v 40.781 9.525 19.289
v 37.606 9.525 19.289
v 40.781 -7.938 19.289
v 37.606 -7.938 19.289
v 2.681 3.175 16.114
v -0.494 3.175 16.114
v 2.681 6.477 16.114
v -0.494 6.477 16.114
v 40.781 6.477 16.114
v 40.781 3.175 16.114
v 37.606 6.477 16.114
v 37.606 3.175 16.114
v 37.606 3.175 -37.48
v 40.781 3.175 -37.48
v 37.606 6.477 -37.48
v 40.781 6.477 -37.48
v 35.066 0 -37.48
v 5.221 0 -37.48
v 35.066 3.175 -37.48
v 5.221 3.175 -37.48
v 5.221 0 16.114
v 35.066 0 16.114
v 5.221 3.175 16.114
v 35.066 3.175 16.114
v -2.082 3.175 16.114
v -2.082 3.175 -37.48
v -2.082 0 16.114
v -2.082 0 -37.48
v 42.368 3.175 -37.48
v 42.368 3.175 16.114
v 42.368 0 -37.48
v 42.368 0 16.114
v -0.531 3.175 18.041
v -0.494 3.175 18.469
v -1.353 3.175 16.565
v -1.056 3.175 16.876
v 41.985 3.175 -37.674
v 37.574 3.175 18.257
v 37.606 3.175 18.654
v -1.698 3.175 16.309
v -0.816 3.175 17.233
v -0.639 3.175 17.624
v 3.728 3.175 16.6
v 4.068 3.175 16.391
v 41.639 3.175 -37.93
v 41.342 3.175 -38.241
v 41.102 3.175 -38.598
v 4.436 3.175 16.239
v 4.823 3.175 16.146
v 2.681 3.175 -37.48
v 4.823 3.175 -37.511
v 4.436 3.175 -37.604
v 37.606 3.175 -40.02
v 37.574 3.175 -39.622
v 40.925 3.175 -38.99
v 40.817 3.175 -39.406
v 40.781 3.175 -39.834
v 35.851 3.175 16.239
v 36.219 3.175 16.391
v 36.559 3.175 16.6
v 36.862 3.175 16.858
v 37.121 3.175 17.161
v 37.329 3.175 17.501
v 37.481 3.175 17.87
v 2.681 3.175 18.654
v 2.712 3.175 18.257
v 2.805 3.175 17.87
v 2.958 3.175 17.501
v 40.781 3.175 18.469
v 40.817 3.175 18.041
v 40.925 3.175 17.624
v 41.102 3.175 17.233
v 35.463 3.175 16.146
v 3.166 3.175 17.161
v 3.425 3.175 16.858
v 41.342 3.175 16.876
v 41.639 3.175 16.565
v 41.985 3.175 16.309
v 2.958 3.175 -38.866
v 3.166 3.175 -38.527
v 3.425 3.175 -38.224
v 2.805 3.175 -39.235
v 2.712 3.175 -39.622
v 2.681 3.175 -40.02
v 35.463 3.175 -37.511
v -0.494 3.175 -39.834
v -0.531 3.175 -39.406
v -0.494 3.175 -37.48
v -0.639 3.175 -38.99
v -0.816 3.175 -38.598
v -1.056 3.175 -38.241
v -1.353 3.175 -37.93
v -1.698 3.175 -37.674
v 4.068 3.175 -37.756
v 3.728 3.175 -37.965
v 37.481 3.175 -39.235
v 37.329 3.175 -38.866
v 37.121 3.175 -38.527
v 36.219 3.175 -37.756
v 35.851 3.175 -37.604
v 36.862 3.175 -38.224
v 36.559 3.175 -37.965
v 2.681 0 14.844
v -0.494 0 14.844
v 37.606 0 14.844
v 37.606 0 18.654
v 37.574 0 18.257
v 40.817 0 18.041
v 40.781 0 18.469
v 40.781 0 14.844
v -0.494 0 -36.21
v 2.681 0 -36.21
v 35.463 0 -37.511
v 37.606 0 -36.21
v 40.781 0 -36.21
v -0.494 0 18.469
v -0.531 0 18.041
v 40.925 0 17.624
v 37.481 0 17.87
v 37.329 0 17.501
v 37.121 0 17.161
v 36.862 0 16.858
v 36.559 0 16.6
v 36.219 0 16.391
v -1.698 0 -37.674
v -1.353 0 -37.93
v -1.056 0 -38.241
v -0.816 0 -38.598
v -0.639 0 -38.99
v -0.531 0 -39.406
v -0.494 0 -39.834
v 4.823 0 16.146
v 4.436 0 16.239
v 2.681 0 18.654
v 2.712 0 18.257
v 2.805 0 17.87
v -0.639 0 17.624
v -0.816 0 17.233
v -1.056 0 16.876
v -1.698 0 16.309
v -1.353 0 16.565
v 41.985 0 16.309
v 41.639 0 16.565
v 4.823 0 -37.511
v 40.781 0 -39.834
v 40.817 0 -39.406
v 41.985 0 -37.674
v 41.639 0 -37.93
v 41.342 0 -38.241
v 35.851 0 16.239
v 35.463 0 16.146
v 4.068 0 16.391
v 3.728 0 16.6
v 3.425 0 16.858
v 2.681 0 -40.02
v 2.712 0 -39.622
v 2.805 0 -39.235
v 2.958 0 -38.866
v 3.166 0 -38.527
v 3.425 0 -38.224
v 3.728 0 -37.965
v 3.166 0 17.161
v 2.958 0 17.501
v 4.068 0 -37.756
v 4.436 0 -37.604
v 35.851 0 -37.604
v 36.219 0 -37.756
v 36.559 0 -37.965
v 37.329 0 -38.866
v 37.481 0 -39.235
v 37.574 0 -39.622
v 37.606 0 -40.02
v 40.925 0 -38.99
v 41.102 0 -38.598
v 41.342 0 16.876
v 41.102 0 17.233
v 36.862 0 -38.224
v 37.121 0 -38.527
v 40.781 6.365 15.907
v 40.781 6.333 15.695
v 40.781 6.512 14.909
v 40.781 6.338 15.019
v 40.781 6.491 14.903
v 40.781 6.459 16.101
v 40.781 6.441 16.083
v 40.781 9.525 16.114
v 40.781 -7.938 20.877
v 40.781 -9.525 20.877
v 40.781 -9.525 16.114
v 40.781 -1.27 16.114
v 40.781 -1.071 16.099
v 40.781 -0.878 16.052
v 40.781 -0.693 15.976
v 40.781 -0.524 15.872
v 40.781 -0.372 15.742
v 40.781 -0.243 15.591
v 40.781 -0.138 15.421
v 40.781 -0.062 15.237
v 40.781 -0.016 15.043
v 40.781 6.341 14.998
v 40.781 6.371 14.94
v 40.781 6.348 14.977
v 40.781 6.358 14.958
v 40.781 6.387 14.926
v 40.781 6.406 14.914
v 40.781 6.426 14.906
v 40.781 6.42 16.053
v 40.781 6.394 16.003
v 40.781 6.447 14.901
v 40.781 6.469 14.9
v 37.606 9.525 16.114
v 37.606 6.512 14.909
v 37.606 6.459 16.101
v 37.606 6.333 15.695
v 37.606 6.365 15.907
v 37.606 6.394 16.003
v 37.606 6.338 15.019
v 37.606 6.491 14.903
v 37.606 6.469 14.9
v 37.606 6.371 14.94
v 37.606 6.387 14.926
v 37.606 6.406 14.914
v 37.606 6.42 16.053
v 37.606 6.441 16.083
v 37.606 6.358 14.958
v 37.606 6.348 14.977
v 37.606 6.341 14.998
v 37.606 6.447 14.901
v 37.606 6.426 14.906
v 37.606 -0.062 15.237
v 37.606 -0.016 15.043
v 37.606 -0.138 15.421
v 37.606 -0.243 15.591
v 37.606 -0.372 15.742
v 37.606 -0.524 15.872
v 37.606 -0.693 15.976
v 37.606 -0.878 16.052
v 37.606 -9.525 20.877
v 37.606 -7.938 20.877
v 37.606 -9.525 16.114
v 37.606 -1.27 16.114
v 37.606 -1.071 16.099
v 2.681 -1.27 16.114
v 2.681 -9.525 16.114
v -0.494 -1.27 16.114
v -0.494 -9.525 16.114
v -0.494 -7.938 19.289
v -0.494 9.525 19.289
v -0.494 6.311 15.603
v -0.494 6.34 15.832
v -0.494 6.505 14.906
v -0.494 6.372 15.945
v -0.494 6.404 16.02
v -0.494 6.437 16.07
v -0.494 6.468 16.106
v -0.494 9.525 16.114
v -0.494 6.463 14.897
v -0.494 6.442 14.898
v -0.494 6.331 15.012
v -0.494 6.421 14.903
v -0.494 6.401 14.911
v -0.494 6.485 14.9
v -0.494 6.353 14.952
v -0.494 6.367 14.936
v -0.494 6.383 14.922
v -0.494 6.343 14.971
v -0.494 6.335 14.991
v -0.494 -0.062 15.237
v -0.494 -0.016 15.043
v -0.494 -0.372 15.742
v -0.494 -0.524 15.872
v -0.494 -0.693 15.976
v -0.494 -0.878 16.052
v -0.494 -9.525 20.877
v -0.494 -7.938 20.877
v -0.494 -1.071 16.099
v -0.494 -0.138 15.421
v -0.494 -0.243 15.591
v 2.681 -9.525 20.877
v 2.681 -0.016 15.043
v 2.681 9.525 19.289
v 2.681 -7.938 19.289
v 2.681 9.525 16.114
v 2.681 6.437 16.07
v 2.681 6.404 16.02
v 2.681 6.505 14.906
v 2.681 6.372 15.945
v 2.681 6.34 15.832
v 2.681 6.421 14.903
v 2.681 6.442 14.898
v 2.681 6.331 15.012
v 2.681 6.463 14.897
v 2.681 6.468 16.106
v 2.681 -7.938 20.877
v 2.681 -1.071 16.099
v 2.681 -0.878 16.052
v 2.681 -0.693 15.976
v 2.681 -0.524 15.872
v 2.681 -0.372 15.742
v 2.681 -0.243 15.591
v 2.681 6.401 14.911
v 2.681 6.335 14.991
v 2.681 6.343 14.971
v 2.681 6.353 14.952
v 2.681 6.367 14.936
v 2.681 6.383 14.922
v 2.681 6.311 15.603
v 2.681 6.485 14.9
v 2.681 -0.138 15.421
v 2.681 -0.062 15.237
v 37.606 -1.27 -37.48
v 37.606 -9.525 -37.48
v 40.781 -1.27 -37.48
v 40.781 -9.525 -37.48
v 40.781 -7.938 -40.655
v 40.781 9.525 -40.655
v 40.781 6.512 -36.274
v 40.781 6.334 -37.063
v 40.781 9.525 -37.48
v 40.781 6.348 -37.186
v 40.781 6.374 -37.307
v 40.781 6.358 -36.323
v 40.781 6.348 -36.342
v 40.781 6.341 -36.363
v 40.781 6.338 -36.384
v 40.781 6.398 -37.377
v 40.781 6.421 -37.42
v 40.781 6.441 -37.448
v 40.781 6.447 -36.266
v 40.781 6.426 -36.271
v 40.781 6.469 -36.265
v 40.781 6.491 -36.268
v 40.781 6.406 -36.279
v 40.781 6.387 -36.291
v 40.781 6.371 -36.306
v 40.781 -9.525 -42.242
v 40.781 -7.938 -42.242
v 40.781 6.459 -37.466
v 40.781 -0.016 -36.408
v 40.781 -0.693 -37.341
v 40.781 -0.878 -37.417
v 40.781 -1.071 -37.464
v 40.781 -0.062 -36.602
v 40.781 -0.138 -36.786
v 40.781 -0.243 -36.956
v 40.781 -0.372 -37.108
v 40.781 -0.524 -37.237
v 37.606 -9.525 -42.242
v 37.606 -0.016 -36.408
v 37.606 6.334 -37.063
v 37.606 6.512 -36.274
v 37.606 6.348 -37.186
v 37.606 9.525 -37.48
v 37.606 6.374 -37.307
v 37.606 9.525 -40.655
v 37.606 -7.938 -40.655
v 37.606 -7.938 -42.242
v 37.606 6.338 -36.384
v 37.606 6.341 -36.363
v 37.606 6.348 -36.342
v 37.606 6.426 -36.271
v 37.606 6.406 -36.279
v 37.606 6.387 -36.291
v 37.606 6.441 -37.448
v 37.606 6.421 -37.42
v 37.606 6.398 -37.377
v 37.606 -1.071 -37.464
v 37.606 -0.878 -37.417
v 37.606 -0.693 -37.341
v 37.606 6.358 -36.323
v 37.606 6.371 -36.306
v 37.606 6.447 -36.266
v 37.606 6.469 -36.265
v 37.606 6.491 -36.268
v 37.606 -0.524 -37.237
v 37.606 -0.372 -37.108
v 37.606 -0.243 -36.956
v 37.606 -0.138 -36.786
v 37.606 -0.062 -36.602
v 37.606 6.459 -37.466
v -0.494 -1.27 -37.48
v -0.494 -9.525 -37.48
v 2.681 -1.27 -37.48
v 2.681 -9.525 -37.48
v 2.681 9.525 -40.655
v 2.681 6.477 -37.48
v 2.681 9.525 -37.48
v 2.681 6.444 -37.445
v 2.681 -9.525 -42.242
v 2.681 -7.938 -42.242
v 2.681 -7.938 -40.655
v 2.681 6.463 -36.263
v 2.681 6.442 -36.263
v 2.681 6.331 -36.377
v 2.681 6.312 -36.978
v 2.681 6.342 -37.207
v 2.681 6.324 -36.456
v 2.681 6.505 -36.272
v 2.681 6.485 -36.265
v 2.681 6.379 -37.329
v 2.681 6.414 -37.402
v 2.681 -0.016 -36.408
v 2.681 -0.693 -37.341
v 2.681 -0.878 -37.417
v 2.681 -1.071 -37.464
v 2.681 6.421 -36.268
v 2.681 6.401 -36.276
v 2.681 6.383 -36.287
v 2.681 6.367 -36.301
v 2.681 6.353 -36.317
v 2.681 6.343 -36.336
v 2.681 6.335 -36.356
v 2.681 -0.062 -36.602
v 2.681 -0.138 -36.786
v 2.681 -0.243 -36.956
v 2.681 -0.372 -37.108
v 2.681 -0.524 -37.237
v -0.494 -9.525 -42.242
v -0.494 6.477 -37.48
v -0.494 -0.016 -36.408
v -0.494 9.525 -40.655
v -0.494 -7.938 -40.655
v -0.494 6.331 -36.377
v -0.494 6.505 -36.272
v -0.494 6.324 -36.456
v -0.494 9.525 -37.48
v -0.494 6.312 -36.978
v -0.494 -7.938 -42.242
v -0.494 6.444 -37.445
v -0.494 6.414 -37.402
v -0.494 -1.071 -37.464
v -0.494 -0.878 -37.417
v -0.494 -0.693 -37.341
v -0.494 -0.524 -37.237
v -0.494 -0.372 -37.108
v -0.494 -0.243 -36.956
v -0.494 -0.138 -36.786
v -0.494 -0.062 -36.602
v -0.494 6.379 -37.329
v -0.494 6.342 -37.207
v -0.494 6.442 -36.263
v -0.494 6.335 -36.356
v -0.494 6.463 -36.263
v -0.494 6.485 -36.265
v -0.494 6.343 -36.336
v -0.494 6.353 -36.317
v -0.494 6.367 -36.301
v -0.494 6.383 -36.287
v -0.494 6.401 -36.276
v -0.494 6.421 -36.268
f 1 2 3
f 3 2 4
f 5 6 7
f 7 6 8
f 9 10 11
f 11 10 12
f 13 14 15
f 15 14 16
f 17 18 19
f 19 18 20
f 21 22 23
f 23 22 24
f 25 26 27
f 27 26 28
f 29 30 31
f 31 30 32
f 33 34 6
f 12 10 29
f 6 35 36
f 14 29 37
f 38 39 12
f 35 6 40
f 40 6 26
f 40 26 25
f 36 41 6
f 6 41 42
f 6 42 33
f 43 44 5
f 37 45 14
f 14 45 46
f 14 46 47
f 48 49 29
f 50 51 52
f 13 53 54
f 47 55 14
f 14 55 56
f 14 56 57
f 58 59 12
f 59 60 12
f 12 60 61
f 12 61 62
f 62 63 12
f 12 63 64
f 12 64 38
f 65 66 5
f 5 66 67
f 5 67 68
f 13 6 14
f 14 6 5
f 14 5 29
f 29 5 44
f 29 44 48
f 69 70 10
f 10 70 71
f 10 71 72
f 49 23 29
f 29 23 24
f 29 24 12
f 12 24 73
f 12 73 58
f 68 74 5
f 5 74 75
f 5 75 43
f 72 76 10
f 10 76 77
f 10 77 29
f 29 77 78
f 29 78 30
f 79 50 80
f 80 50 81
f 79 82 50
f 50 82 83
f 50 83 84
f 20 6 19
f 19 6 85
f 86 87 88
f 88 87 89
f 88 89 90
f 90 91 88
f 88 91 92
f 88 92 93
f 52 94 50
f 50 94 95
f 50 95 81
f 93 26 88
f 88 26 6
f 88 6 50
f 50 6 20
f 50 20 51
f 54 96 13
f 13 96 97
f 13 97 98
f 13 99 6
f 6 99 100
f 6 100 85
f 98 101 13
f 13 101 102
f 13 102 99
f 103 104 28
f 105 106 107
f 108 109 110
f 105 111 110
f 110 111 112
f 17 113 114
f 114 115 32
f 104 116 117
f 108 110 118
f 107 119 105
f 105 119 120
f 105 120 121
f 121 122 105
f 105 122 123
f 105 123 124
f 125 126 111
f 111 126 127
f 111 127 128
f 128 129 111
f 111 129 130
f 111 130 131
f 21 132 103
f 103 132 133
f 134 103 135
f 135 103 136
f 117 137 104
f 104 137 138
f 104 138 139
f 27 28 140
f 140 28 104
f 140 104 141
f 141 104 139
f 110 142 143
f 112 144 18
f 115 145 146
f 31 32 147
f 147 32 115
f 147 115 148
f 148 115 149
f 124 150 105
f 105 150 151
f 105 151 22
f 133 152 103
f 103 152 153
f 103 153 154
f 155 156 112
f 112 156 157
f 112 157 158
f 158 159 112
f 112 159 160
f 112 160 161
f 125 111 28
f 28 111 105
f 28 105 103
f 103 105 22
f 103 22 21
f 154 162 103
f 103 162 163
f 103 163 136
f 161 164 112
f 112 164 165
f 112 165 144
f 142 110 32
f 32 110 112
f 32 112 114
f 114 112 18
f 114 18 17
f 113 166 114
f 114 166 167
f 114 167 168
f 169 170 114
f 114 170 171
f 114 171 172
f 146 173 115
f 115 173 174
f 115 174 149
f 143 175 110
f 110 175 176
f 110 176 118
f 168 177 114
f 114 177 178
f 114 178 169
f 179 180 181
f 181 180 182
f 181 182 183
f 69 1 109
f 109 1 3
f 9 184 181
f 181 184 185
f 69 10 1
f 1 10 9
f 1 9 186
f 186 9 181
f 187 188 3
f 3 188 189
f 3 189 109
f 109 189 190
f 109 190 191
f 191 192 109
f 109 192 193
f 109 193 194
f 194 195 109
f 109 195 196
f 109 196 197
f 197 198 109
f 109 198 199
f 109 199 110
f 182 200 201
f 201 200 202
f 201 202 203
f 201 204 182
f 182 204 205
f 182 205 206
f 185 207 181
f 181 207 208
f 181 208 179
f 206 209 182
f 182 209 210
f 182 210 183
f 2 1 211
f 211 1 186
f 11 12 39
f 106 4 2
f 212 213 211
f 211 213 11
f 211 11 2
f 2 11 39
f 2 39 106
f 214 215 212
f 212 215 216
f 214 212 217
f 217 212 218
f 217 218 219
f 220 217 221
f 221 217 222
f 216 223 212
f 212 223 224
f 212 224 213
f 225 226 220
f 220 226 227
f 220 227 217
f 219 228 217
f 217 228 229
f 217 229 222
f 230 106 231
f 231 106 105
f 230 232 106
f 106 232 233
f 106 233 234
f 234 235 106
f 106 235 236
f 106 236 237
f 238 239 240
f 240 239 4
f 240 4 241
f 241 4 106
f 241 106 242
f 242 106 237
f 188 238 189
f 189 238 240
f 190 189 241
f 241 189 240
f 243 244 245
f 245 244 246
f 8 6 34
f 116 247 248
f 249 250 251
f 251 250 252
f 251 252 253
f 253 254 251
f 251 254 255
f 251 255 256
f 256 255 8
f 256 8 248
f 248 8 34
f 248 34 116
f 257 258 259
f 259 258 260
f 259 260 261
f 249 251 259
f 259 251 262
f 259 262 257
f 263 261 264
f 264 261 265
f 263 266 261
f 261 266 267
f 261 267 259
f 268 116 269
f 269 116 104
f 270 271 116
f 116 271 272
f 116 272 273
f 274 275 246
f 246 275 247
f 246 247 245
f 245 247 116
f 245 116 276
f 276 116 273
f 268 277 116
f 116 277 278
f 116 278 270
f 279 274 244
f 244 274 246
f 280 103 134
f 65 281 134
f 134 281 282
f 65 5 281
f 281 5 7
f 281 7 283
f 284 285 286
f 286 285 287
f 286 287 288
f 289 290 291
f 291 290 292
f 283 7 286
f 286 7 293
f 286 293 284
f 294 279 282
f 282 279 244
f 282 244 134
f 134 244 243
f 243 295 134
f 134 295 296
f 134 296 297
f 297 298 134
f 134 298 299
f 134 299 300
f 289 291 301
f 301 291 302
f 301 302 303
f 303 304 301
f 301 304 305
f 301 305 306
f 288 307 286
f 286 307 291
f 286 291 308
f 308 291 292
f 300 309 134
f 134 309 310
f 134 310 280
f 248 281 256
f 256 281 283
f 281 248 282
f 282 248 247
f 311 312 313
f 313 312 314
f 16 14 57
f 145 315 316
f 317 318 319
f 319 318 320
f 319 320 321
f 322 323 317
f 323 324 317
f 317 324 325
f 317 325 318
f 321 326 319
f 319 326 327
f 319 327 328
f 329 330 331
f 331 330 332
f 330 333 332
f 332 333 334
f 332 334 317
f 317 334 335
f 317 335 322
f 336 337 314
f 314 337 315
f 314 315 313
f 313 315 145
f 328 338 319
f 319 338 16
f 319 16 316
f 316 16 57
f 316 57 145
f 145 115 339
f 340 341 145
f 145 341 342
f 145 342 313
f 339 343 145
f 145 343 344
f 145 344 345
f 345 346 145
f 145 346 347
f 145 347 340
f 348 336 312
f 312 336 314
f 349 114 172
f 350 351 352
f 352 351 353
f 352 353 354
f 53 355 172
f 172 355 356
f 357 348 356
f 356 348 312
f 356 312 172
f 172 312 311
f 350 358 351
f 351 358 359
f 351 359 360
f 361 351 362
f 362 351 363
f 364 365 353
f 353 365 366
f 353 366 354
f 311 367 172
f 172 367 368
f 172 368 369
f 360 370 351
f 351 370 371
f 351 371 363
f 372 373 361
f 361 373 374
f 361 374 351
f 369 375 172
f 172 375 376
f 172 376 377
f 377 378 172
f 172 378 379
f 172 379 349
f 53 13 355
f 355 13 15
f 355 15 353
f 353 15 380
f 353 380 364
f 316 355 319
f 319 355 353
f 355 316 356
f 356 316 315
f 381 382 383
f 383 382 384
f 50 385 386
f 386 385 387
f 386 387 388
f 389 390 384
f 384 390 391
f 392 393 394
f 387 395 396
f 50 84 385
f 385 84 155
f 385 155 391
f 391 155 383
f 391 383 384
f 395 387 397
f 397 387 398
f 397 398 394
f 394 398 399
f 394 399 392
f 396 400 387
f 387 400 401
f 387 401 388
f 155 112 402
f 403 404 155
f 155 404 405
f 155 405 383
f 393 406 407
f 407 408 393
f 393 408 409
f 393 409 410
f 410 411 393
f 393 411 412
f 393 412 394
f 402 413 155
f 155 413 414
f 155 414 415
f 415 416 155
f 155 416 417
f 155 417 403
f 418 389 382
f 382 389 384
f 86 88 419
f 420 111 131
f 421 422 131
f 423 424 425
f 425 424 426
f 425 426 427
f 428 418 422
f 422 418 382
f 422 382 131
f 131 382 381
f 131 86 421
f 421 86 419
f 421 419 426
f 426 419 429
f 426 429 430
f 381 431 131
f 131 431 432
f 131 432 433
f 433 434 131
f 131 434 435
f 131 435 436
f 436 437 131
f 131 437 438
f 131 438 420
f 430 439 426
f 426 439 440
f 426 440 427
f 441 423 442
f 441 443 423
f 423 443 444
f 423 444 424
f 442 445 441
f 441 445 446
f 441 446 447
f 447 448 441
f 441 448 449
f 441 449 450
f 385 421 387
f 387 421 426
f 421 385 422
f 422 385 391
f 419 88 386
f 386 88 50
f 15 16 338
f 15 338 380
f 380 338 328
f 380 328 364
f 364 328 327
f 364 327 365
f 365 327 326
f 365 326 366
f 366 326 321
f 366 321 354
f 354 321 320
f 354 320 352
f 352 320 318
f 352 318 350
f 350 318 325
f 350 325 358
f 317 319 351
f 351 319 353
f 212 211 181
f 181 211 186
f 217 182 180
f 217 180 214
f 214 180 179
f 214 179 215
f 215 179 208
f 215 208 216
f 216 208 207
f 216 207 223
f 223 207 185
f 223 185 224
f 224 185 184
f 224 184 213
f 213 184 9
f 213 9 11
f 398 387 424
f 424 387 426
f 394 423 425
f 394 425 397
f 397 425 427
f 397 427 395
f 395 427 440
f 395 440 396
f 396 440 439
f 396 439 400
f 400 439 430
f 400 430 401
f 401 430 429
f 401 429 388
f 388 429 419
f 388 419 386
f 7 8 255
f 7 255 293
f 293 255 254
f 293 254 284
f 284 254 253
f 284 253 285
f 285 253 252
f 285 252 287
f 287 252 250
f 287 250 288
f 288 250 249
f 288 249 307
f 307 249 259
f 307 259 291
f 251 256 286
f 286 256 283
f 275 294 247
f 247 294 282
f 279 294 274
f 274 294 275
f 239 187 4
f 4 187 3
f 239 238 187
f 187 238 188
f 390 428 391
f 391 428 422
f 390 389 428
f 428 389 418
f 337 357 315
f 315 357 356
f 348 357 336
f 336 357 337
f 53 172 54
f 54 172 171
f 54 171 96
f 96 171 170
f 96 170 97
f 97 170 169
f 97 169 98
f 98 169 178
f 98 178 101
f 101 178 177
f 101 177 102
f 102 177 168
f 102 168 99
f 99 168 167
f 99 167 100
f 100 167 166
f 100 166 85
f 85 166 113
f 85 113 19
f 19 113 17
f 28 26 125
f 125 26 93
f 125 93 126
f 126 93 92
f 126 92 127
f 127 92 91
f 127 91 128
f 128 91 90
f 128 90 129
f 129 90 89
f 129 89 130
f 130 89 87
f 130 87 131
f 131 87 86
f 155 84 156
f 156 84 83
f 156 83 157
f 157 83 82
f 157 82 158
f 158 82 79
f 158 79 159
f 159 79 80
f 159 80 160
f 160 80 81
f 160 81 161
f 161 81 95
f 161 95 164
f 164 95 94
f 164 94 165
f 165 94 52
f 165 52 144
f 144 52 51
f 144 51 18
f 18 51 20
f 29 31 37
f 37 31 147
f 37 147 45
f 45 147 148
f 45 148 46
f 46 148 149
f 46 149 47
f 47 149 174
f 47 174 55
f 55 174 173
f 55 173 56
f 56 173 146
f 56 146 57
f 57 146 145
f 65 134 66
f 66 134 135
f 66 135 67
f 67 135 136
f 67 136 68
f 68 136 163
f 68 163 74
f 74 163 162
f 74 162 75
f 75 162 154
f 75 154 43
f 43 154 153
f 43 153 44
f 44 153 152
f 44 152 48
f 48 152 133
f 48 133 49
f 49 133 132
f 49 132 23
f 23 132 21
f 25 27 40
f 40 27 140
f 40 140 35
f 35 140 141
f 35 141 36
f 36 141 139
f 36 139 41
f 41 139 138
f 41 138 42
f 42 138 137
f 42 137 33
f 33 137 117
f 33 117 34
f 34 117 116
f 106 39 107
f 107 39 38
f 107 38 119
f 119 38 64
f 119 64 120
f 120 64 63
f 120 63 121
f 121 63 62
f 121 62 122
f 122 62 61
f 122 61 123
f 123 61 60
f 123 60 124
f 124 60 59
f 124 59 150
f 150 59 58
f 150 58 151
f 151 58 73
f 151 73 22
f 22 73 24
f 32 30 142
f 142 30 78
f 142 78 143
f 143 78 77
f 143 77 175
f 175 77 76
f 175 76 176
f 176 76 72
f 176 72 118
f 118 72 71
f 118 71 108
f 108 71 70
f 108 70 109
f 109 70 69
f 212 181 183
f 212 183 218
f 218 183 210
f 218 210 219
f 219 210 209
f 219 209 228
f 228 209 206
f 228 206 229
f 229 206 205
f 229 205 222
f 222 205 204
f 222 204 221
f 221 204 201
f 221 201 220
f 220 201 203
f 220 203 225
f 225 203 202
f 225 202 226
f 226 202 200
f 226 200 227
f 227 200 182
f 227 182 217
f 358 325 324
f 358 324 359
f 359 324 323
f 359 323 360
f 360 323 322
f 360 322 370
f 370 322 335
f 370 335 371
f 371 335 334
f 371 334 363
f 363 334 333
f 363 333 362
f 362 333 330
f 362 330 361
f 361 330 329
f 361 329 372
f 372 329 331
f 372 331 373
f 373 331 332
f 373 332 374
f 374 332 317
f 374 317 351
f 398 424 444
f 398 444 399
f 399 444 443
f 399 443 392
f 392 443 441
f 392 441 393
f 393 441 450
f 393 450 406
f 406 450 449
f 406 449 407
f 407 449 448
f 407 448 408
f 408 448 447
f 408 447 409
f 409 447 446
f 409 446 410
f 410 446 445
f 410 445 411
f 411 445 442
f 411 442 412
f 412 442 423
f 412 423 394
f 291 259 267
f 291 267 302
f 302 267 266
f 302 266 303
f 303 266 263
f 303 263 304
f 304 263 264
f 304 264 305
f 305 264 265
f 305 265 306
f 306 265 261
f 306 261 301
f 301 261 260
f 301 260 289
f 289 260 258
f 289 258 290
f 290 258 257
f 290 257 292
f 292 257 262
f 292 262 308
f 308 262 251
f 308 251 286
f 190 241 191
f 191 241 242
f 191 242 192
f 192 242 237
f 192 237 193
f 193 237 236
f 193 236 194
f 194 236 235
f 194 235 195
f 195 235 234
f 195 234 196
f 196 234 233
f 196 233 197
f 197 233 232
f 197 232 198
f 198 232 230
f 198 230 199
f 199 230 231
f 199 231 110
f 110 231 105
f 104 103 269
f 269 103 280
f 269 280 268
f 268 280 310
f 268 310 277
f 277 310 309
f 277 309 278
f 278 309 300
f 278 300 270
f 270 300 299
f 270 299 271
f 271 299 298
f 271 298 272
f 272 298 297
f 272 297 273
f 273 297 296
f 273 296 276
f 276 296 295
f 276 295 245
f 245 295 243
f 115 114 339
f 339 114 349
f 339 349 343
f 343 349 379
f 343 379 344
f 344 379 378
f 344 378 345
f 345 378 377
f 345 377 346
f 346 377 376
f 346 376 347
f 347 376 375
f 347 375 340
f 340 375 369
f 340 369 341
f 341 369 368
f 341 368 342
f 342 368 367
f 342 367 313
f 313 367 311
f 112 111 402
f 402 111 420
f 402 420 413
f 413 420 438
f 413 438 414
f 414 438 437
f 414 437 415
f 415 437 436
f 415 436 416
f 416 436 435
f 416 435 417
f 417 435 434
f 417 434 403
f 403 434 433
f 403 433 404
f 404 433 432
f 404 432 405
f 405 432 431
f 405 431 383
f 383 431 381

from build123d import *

# Parameters (mm, degrees)
SKETCH1_W           = 44.45
SKETCH1_H           = 53.594
BOSS_EXTRUDE1_DEPTH = 3.175
SKETCH2_W           = 3.175
SKETCH2_H           = 19.05
BOSS_EXTRUDE2_DEPTH = 3.175
SKETCH4_W           = 3.175
SKETCH4_H           = 19.05
BOSS_EXTRUDE3_DEPTH = 3.175
BOSS_EXTRUDE4_DEPTH = 3.175
BOSS_EXTRUDE5_DEPTH = 3.175
SKETCH11_W          = 3.175
SKETCH11_H          = 1.5875
BOSS_EXTRUDE6_DEPTH = 1.5875
SKETCH12_W          = 3.175
SKETCH12_H          = 1.5875
BOSS_EXTRUDE7_DEPTH = 1.5875
FILLET1_R           = 2.54
FILLET2_R           = 0.127
FILLET3_R           = 1.27


with BuildPart() as part:
    # Sketch1 → Boss-Extrude1 (new body)
    with BuildSketch(Plane(origin=(0, 0, 0), x_dir=(1, 0, 0), z_dir=(0, 1, 0))):
        with Locations((20.14322973, 10.682587838)):
            Rectangle(SKETCH1_W, SKETCH1_H)
    extrude(amount=BOSS_EXTRUDE1_DEPTH)

    # Sketch2 → Boss-Extrude2 (add)
    with BuildSketch(Plane.XY.offset(16.114412162)):
        with Locations((1.09322973, 0)):
            Rectangle(SKETCH2_W, SKETCH2_H)
        with Locations((39.19322973, 0)):
            Rectangle(SKETCH2_W, SKETCH2_H)
    extrude(amount=BOSS_EXTRUDE2_DEPTH)

    # Sketch4 → Boss-Extrude3 (add)
    with BuildSketch(Plane(origin=(0, 0, -37.479587838), x_dir=(-1, 0, 0), z_dir=(0, 0, -1))):
        with Locations((-1.09322973, 0)):
            Rectangle(SKETCH4_W, SKETCH4_H)
        with Locations((-39.19322973, 0)):
            Rectangle(SKETCH4_W, SKETCH4_H)
    extrude(amount=BOSS_EXTRUDE3_DEPTH)

    # Sketch9 → Boss-Extrude4 (add)
    with BuildSketch(Plane(origin=(40.78072973, 0, 0), x_dir=(0, 0, -1), z_dir=(1, 0, 0))):
        with BuildLine():
            Line((-16.114412162, 9.525), (-14.844412162, 6.35))
            add(Edge.make_bspline(
                [(-14.844412162, 6.35), (-15.980974803, 6.259875381), (-16.114412162, 6.477)],
                knots=[0, 0, 0, 1, 1, 1], degree=2))
            Line((-16.114412162, 6.477), (-16.114412162, 9.525))
        make_face()
        with BuildLine():
            Line((37.479587838, 9.525), (36.209587838, 6.35))
            add(Edge.make_bspline(
                [(36.209587838, 6.35), (37.346150478, 6.259875381), (37.479587838, 6.477)],
                knots=[0, 0, 0, 1, 1, 1], degree=2))
            Line((37.479587838, 6.477), (37.479587838, 9.525))
        make_face()
    extrude(amount=-BOSS_EXTRUDE4_DEPTH)

    # Sketch10 → Boss-Extrude5 (add)
    with BuildSketch(Plane.ZY.offset(0.49427027)):
        with BuildLine():
            Line((-37.479587838, 9.525), (-36.209587838, 6.35))
            add(Edge.make_bspline(
                [(-36.209587838, 6.35), (-37.253478126, 6.221904512), (-37.479587838, 6.477)],
                knots=[0, 0, 0, 1, 1, 1], degree=2))
            Line((-37.479587838, 6.477), (-37.479587838, 9.525))
        make_face()
        with BuildLine():
            Line((16.114412162, 9.525), (14.844412162, 6.35))
            add(Edge.make_bspline(
                [(14.844412162, 6.35), (15.88830245, 6.221904512), (16.114412162, 6.477)],
                knots=[0, 0, 0, 1, 1, 1], degree=2))
            Line((16.114412162, 6.477), (16.114412162, 9.525))
        make_face()
    extrude(amount=-BOSS_EXTRUDE5_DEPTH)

    # Sketch11 → Boss-Extrude6 (add)
    with BuildSketch(Plane.XY.offset(19.289412162)):
        with Locations((1.09322973, -8.73125)):
            Rectangle(SKETCH11_W, SKETCH11_H)
        with Locations((39.19322973, -8.73125)):
            Rectangle(SKETCH11_W, SKETCH11_H)
    extrude(amount=BOSS_EXTRUDE6_DEPTH)

    # Sketch12 → Boss-Extrude7 (add)
    with BuildSketch(Plane(origin=(0, 0, -40.654587838), x_dir=(-1, 0, 0), z_dir=(0, 0, -1))):
        with Locations((-39.19322973, -8.73125)):
            Rectangle(SKETCH12_W, SKETCH12_H)
        with Locations((-1.09322973, -8.73125)):
            Rectangle(SKETCH12_W, SKETCH12_H)
    extrude(amount=BOSS_EXTRUDE7_DEPTH)

    # Fillet1
    # the kernel refuses this fillet: 2.54 mm, written as the material it adds along each edge
    with BuildSketch(Plane(origin=(37.60572973, 0, 16.114412162), x_dir=(0, 0, 1), z_dir=(0, 1, 0)), Plane(origin=(2.68072973, 0, -37.479587838), x_dir=(0, 0, -1), z_dir=(0, 1, 0))) as fillet1_piece_1:
        with BuildLine():
            CenterArc((FILLET1_R, -FILLET1_R), FILLET1_R, 90, 90)
            Line((0, -FILLET1_R), (0, 0))
            Line((0, 0), (FILLET1_R, 0))
        make_face()
    extrude(amount=3.175)
    with BuildSketch(Plane(origin=(40.78072973, 3.175, 16.114412162), x_dir=(1, 0, 0), z_dir=(0, -1, 0)), Plane(origin=(-0.49427027, 0, 16.114412162), x_dir=(-1, 0, 0), z_dir=(0, 1, 0)), Plane(origin=(-0.49427027, 3.175, -37.479587838), x_dir=(-1, 0, 0), z_dir=(0, -1, 0))) as fillet1_piece_2:
        with BuildLine():
            CenterArc((2.54, 2.35464302), FILLET1_R, 180, 67.975687163)
            Line((0, 2.35464302), (0, 0))
            Line((0, 0), (1.5875, 0))
        make_face()
    extrude(amount=3.175)
    with BuildSketch(Plane(origin=(2.68072973, 3.175, 16.114412162), x_dir=(1, 0, 0), z_dir=(0, -1, 0)), Plane(origin=(37.60572973, 3.175, -37.479587838), x_dir=(-1, 0, 0), z_dir=(0, -1, 0))) as fillet1_piece_3:
        with BuildLine():
            CenterArc((FILLET1_R, FILLET1_R), FILLET1_R, 180, 90)
            Line((0, FILLET1_R), (0, 0))
            Line((0, 0), (FILLET1_R, 0))
        make_face()
    extrude(amount=3.175)
    with BuildSketch(Plane(origin=(40.78072973, 0, -37.479587838), x_dir=(0, 0, -1), z_dir=(0, 1, 0))) as fillet1_piece_4:
        with BuildLine():
            CenterArc((2.35464302, -2.54), FILLET1_R, 90, 67.975687163)
            Line((0, -1.5875), (0, 0))
            Line((0, 0), (2.35464302, 0))
        make_face()
    extrude(amount=3.175)

    # Fillet2
    fillet2_edges = [part.edges().sort_by_distance(p)[0] for p in [
        (39.19322973, 6.35, 14.844412162),
        (39.19322973, 6.35, -36.209587838),
        (1.09322973, 6.35, -36.209587838),
        (1.09322973, 6.35, 14.844412162),
    ]]
    fillet(fillet2_edges, radius=FILLET2_R)

    # Fillet3
    fillet3_edges = [part.edges().sort_by_distance(p)[0] for p in [
        (1.09322973, 0, 16.114412162),
        (39.19322973, 0, 16.114412162),
        (39.19322973, 0, -37.479587838),
        (1.09322973, 0, -37.479587838),
    ]]
    fillet(fillet3_edges, radius=FILLET3_R)


solid = part.part
